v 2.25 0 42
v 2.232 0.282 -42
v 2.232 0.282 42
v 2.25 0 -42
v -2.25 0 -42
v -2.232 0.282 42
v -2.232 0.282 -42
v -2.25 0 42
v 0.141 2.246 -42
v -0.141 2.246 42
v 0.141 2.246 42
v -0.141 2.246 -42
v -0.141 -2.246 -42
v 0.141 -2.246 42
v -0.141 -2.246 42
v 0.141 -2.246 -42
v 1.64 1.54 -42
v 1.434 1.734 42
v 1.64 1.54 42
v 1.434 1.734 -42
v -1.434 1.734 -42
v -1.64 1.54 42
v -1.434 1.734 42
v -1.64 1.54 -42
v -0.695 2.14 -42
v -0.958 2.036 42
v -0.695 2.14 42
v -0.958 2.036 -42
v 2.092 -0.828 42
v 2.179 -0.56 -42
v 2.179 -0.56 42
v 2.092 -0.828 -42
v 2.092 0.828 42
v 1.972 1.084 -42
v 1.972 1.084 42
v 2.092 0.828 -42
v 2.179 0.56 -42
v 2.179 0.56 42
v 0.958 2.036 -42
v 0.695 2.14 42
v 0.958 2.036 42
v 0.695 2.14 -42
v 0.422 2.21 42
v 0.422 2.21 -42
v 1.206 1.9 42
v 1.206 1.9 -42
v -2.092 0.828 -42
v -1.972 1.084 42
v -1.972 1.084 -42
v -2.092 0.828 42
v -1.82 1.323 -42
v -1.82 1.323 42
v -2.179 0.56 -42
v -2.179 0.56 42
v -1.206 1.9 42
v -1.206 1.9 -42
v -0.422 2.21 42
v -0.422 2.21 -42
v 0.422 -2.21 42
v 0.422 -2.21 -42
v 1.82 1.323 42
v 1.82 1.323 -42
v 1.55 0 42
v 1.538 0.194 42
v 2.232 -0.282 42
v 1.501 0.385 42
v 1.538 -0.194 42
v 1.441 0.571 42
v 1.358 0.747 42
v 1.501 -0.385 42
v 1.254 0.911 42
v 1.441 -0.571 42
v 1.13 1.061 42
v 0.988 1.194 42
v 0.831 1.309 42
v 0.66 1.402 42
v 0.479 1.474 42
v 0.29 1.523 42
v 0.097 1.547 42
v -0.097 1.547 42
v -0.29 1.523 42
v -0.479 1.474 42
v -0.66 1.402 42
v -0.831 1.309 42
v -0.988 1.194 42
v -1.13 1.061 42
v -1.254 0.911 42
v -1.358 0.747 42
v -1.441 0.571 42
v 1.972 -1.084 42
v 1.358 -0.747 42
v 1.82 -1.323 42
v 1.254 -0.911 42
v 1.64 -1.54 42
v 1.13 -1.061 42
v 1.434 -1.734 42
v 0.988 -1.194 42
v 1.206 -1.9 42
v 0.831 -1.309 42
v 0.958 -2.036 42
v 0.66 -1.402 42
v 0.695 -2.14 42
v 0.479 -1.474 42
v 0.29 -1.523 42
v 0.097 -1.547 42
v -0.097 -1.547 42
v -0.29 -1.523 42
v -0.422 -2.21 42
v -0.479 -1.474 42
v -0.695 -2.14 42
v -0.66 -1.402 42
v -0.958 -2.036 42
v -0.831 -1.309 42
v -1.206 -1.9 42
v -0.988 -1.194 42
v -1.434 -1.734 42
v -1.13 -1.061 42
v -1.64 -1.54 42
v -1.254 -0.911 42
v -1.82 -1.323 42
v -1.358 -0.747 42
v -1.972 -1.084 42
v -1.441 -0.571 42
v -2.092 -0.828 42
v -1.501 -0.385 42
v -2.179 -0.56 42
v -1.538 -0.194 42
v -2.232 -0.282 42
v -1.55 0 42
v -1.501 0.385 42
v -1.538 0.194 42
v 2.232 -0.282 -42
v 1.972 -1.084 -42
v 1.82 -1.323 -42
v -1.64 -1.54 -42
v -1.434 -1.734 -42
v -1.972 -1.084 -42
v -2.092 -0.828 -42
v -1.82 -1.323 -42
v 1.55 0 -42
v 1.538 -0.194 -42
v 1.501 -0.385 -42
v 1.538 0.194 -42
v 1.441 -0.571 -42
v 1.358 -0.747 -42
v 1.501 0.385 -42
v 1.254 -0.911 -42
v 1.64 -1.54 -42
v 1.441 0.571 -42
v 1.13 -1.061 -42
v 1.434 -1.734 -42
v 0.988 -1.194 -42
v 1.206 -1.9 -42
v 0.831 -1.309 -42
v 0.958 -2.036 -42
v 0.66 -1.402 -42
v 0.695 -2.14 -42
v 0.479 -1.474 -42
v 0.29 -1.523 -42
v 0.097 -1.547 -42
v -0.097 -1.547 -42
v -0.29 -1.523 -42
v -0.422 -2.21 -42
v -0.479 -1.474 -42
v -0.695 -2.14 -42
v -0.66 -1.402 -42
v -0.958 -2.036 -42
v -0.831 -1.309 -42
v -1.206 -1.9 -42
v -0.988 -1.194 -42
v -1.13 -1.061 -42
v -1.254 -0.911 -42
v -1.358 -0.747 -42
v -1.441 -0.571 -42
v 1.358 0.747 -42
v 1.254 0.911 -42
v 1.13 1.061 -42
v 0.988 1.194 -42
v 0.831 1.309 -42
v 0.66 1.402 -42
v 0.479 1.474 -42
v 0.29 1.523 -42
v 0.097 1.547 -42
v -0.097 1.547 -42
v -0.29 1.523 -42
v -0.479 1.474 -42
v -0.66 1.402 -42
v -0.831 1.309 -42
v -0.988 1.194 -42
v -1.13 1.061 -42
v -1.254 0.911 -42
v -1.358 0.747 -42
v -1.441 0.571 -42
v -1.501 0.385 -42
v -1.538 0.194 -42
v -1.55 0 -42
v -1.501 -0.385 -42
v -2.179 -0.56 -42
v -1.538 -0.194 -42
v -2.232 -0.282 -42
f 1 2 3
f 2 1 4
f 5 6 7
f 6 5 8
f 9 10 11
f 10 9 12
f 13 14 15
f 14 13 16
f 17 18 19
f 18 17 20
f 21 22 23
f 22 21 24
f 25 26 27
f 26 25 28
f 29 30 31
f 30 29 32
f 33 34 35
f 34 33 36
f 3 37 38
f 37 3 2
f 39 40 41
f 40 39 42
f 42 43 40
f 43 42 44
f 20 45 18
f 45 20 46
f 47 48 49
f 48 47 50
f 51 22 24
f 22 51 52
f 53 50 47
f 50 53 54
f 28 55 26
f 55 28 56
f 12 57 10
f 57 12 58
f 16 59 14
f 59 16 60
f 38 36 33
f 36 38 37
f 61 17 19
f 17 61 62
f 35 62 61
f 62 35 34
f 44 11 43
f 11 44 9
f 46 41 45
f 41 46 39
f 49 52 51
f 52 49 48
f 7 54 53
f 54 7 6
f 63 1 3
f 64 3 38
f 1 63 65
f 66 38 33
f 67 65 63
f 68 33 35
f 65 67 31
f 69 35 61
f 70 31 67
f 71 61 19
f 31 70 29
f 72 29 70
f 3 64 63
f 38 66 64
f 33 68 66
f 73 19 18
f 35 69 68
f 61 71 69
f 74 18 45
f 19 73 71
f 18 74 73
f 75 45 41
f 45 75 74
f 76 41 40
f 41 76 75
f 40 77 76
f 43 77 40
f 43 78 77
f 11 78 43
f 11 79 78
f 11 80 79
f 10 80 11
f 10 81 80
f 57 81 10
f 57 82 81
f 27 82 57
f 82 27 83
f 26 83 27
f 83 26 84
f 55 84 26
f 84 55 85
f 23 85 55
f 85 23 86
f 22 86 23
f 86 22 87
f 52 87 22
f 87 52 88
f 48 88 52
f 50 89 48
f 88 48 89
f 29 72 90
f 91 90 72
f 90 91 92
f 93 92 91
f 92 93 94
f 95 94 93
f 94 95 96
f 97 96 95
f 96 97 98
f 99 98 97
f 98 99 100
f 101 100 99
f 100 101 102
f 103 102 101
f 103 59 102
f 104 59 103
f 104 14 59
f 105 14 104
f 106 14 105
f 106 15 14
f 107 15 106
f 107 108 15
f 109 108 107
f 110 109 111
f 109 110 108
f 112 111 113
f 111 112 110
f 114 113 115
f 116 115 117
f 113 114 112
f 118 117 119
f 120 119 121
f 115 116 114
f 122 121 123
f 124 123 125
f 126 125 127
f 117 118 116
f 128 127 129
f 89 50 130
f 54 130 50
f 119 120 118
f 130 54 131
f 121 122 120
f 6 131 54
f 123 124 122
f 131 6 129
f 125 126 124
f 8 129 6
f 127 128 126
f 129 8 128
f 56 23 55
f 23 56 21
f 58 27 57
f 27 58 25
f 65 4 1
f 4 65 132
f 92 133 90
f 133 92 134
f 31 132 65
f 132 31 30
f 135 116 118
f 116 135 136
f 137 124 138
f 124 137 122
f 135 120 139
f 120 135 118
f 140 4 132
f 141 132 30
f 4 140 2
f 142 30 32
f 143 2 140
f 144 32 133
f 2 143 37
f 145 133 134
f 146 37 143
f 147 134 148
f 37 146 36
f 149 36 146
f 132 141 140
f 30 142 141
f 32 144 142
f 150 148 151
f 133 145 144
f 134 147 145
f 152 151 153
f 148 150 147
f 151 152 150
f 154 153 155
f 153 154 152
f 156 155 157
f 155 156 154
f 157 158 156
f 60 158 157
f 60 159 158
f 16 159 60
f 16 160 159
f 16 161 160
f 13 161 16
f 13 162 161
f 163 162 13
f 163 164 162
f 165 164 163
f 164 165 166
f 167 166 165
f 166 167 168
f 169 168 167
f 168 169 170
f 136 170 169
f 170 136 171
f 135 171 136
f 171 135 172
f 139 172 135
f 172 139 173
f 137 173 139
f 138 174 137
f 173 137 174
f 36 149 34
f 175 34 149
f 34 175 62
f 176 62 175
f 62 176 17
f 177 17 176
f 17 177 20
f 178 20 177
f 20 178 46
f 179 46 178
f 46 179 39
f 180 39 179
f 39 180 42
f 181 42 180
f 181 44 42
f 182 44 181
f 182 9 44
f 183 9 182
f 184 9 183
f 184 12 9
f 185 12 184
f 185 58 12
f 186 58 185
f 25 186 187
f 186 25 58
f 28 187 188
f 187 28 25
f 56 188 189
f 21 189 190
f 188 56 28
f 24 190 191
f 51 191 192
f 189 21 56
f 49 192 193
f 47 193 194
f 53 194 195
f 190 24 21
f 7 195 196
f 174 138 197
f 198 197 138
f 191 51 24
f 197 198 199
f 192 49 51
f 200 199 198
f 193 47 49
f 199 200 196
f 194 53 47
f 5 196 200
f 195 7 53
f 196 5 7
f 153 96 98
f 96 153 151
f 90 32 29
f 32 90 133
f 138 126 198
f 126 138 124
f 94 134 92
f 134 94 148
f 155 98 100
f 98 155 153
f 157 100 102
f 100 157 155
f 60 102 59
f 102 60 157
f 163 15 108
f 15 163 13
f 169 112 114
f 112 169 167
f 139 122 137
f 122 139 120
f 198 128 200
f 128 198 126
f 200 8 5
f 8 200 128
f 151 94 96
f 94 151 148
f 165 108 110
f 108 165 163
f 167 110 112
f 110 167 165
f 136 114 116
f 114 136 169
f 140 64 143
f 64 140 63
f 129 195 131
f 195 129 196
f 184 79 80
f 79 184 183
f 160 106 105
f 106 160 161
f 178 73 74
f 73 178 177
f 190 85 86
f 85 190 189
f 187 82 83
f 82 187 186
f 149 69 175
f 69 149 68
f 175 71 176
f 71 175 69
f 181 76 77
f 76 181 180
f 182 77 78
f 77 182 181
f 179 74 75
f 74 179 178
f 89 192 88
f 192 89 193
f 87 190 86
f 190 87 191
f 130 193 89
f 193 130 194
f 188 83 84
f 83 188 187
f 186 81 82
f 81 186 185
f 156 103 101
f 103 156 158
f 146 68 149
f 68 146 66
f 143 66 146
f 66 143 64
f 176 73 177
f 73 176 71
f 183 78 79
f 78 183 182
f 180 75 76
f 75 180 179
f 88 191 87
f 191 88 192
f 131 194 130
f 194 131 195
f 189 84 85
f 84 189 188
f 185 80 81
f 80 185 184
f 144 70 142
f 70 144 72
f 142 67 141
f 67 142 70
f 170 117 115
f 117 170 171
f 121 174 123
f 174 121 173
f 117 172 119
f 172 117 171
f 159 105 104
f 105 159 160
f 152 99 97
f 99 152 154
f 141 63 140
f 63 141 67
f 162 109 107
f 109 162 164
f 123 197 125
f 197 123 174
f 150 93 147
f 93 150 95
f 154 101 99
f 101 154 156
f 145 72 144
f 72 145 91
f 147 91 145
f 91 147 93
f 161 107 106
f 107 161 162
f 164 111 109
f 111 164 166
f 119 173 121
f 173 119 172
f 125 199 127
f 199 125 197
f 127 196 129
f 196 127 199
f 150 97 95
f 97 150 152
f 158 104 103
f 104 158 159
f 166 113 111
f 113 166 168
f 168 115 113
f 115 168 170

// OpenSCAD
$fn = 50;


difference() {
	union() {
		translate(v = [0, 0, -42.0000000000]) {
			cylinder(h = 84, r = 2.2500000000);
		}
	}
	union() {
		translate(v = [0, 0, -100.0000000000]) {
			cylinder(h = 200, r = 1.5500000000);
		}
	}
}
